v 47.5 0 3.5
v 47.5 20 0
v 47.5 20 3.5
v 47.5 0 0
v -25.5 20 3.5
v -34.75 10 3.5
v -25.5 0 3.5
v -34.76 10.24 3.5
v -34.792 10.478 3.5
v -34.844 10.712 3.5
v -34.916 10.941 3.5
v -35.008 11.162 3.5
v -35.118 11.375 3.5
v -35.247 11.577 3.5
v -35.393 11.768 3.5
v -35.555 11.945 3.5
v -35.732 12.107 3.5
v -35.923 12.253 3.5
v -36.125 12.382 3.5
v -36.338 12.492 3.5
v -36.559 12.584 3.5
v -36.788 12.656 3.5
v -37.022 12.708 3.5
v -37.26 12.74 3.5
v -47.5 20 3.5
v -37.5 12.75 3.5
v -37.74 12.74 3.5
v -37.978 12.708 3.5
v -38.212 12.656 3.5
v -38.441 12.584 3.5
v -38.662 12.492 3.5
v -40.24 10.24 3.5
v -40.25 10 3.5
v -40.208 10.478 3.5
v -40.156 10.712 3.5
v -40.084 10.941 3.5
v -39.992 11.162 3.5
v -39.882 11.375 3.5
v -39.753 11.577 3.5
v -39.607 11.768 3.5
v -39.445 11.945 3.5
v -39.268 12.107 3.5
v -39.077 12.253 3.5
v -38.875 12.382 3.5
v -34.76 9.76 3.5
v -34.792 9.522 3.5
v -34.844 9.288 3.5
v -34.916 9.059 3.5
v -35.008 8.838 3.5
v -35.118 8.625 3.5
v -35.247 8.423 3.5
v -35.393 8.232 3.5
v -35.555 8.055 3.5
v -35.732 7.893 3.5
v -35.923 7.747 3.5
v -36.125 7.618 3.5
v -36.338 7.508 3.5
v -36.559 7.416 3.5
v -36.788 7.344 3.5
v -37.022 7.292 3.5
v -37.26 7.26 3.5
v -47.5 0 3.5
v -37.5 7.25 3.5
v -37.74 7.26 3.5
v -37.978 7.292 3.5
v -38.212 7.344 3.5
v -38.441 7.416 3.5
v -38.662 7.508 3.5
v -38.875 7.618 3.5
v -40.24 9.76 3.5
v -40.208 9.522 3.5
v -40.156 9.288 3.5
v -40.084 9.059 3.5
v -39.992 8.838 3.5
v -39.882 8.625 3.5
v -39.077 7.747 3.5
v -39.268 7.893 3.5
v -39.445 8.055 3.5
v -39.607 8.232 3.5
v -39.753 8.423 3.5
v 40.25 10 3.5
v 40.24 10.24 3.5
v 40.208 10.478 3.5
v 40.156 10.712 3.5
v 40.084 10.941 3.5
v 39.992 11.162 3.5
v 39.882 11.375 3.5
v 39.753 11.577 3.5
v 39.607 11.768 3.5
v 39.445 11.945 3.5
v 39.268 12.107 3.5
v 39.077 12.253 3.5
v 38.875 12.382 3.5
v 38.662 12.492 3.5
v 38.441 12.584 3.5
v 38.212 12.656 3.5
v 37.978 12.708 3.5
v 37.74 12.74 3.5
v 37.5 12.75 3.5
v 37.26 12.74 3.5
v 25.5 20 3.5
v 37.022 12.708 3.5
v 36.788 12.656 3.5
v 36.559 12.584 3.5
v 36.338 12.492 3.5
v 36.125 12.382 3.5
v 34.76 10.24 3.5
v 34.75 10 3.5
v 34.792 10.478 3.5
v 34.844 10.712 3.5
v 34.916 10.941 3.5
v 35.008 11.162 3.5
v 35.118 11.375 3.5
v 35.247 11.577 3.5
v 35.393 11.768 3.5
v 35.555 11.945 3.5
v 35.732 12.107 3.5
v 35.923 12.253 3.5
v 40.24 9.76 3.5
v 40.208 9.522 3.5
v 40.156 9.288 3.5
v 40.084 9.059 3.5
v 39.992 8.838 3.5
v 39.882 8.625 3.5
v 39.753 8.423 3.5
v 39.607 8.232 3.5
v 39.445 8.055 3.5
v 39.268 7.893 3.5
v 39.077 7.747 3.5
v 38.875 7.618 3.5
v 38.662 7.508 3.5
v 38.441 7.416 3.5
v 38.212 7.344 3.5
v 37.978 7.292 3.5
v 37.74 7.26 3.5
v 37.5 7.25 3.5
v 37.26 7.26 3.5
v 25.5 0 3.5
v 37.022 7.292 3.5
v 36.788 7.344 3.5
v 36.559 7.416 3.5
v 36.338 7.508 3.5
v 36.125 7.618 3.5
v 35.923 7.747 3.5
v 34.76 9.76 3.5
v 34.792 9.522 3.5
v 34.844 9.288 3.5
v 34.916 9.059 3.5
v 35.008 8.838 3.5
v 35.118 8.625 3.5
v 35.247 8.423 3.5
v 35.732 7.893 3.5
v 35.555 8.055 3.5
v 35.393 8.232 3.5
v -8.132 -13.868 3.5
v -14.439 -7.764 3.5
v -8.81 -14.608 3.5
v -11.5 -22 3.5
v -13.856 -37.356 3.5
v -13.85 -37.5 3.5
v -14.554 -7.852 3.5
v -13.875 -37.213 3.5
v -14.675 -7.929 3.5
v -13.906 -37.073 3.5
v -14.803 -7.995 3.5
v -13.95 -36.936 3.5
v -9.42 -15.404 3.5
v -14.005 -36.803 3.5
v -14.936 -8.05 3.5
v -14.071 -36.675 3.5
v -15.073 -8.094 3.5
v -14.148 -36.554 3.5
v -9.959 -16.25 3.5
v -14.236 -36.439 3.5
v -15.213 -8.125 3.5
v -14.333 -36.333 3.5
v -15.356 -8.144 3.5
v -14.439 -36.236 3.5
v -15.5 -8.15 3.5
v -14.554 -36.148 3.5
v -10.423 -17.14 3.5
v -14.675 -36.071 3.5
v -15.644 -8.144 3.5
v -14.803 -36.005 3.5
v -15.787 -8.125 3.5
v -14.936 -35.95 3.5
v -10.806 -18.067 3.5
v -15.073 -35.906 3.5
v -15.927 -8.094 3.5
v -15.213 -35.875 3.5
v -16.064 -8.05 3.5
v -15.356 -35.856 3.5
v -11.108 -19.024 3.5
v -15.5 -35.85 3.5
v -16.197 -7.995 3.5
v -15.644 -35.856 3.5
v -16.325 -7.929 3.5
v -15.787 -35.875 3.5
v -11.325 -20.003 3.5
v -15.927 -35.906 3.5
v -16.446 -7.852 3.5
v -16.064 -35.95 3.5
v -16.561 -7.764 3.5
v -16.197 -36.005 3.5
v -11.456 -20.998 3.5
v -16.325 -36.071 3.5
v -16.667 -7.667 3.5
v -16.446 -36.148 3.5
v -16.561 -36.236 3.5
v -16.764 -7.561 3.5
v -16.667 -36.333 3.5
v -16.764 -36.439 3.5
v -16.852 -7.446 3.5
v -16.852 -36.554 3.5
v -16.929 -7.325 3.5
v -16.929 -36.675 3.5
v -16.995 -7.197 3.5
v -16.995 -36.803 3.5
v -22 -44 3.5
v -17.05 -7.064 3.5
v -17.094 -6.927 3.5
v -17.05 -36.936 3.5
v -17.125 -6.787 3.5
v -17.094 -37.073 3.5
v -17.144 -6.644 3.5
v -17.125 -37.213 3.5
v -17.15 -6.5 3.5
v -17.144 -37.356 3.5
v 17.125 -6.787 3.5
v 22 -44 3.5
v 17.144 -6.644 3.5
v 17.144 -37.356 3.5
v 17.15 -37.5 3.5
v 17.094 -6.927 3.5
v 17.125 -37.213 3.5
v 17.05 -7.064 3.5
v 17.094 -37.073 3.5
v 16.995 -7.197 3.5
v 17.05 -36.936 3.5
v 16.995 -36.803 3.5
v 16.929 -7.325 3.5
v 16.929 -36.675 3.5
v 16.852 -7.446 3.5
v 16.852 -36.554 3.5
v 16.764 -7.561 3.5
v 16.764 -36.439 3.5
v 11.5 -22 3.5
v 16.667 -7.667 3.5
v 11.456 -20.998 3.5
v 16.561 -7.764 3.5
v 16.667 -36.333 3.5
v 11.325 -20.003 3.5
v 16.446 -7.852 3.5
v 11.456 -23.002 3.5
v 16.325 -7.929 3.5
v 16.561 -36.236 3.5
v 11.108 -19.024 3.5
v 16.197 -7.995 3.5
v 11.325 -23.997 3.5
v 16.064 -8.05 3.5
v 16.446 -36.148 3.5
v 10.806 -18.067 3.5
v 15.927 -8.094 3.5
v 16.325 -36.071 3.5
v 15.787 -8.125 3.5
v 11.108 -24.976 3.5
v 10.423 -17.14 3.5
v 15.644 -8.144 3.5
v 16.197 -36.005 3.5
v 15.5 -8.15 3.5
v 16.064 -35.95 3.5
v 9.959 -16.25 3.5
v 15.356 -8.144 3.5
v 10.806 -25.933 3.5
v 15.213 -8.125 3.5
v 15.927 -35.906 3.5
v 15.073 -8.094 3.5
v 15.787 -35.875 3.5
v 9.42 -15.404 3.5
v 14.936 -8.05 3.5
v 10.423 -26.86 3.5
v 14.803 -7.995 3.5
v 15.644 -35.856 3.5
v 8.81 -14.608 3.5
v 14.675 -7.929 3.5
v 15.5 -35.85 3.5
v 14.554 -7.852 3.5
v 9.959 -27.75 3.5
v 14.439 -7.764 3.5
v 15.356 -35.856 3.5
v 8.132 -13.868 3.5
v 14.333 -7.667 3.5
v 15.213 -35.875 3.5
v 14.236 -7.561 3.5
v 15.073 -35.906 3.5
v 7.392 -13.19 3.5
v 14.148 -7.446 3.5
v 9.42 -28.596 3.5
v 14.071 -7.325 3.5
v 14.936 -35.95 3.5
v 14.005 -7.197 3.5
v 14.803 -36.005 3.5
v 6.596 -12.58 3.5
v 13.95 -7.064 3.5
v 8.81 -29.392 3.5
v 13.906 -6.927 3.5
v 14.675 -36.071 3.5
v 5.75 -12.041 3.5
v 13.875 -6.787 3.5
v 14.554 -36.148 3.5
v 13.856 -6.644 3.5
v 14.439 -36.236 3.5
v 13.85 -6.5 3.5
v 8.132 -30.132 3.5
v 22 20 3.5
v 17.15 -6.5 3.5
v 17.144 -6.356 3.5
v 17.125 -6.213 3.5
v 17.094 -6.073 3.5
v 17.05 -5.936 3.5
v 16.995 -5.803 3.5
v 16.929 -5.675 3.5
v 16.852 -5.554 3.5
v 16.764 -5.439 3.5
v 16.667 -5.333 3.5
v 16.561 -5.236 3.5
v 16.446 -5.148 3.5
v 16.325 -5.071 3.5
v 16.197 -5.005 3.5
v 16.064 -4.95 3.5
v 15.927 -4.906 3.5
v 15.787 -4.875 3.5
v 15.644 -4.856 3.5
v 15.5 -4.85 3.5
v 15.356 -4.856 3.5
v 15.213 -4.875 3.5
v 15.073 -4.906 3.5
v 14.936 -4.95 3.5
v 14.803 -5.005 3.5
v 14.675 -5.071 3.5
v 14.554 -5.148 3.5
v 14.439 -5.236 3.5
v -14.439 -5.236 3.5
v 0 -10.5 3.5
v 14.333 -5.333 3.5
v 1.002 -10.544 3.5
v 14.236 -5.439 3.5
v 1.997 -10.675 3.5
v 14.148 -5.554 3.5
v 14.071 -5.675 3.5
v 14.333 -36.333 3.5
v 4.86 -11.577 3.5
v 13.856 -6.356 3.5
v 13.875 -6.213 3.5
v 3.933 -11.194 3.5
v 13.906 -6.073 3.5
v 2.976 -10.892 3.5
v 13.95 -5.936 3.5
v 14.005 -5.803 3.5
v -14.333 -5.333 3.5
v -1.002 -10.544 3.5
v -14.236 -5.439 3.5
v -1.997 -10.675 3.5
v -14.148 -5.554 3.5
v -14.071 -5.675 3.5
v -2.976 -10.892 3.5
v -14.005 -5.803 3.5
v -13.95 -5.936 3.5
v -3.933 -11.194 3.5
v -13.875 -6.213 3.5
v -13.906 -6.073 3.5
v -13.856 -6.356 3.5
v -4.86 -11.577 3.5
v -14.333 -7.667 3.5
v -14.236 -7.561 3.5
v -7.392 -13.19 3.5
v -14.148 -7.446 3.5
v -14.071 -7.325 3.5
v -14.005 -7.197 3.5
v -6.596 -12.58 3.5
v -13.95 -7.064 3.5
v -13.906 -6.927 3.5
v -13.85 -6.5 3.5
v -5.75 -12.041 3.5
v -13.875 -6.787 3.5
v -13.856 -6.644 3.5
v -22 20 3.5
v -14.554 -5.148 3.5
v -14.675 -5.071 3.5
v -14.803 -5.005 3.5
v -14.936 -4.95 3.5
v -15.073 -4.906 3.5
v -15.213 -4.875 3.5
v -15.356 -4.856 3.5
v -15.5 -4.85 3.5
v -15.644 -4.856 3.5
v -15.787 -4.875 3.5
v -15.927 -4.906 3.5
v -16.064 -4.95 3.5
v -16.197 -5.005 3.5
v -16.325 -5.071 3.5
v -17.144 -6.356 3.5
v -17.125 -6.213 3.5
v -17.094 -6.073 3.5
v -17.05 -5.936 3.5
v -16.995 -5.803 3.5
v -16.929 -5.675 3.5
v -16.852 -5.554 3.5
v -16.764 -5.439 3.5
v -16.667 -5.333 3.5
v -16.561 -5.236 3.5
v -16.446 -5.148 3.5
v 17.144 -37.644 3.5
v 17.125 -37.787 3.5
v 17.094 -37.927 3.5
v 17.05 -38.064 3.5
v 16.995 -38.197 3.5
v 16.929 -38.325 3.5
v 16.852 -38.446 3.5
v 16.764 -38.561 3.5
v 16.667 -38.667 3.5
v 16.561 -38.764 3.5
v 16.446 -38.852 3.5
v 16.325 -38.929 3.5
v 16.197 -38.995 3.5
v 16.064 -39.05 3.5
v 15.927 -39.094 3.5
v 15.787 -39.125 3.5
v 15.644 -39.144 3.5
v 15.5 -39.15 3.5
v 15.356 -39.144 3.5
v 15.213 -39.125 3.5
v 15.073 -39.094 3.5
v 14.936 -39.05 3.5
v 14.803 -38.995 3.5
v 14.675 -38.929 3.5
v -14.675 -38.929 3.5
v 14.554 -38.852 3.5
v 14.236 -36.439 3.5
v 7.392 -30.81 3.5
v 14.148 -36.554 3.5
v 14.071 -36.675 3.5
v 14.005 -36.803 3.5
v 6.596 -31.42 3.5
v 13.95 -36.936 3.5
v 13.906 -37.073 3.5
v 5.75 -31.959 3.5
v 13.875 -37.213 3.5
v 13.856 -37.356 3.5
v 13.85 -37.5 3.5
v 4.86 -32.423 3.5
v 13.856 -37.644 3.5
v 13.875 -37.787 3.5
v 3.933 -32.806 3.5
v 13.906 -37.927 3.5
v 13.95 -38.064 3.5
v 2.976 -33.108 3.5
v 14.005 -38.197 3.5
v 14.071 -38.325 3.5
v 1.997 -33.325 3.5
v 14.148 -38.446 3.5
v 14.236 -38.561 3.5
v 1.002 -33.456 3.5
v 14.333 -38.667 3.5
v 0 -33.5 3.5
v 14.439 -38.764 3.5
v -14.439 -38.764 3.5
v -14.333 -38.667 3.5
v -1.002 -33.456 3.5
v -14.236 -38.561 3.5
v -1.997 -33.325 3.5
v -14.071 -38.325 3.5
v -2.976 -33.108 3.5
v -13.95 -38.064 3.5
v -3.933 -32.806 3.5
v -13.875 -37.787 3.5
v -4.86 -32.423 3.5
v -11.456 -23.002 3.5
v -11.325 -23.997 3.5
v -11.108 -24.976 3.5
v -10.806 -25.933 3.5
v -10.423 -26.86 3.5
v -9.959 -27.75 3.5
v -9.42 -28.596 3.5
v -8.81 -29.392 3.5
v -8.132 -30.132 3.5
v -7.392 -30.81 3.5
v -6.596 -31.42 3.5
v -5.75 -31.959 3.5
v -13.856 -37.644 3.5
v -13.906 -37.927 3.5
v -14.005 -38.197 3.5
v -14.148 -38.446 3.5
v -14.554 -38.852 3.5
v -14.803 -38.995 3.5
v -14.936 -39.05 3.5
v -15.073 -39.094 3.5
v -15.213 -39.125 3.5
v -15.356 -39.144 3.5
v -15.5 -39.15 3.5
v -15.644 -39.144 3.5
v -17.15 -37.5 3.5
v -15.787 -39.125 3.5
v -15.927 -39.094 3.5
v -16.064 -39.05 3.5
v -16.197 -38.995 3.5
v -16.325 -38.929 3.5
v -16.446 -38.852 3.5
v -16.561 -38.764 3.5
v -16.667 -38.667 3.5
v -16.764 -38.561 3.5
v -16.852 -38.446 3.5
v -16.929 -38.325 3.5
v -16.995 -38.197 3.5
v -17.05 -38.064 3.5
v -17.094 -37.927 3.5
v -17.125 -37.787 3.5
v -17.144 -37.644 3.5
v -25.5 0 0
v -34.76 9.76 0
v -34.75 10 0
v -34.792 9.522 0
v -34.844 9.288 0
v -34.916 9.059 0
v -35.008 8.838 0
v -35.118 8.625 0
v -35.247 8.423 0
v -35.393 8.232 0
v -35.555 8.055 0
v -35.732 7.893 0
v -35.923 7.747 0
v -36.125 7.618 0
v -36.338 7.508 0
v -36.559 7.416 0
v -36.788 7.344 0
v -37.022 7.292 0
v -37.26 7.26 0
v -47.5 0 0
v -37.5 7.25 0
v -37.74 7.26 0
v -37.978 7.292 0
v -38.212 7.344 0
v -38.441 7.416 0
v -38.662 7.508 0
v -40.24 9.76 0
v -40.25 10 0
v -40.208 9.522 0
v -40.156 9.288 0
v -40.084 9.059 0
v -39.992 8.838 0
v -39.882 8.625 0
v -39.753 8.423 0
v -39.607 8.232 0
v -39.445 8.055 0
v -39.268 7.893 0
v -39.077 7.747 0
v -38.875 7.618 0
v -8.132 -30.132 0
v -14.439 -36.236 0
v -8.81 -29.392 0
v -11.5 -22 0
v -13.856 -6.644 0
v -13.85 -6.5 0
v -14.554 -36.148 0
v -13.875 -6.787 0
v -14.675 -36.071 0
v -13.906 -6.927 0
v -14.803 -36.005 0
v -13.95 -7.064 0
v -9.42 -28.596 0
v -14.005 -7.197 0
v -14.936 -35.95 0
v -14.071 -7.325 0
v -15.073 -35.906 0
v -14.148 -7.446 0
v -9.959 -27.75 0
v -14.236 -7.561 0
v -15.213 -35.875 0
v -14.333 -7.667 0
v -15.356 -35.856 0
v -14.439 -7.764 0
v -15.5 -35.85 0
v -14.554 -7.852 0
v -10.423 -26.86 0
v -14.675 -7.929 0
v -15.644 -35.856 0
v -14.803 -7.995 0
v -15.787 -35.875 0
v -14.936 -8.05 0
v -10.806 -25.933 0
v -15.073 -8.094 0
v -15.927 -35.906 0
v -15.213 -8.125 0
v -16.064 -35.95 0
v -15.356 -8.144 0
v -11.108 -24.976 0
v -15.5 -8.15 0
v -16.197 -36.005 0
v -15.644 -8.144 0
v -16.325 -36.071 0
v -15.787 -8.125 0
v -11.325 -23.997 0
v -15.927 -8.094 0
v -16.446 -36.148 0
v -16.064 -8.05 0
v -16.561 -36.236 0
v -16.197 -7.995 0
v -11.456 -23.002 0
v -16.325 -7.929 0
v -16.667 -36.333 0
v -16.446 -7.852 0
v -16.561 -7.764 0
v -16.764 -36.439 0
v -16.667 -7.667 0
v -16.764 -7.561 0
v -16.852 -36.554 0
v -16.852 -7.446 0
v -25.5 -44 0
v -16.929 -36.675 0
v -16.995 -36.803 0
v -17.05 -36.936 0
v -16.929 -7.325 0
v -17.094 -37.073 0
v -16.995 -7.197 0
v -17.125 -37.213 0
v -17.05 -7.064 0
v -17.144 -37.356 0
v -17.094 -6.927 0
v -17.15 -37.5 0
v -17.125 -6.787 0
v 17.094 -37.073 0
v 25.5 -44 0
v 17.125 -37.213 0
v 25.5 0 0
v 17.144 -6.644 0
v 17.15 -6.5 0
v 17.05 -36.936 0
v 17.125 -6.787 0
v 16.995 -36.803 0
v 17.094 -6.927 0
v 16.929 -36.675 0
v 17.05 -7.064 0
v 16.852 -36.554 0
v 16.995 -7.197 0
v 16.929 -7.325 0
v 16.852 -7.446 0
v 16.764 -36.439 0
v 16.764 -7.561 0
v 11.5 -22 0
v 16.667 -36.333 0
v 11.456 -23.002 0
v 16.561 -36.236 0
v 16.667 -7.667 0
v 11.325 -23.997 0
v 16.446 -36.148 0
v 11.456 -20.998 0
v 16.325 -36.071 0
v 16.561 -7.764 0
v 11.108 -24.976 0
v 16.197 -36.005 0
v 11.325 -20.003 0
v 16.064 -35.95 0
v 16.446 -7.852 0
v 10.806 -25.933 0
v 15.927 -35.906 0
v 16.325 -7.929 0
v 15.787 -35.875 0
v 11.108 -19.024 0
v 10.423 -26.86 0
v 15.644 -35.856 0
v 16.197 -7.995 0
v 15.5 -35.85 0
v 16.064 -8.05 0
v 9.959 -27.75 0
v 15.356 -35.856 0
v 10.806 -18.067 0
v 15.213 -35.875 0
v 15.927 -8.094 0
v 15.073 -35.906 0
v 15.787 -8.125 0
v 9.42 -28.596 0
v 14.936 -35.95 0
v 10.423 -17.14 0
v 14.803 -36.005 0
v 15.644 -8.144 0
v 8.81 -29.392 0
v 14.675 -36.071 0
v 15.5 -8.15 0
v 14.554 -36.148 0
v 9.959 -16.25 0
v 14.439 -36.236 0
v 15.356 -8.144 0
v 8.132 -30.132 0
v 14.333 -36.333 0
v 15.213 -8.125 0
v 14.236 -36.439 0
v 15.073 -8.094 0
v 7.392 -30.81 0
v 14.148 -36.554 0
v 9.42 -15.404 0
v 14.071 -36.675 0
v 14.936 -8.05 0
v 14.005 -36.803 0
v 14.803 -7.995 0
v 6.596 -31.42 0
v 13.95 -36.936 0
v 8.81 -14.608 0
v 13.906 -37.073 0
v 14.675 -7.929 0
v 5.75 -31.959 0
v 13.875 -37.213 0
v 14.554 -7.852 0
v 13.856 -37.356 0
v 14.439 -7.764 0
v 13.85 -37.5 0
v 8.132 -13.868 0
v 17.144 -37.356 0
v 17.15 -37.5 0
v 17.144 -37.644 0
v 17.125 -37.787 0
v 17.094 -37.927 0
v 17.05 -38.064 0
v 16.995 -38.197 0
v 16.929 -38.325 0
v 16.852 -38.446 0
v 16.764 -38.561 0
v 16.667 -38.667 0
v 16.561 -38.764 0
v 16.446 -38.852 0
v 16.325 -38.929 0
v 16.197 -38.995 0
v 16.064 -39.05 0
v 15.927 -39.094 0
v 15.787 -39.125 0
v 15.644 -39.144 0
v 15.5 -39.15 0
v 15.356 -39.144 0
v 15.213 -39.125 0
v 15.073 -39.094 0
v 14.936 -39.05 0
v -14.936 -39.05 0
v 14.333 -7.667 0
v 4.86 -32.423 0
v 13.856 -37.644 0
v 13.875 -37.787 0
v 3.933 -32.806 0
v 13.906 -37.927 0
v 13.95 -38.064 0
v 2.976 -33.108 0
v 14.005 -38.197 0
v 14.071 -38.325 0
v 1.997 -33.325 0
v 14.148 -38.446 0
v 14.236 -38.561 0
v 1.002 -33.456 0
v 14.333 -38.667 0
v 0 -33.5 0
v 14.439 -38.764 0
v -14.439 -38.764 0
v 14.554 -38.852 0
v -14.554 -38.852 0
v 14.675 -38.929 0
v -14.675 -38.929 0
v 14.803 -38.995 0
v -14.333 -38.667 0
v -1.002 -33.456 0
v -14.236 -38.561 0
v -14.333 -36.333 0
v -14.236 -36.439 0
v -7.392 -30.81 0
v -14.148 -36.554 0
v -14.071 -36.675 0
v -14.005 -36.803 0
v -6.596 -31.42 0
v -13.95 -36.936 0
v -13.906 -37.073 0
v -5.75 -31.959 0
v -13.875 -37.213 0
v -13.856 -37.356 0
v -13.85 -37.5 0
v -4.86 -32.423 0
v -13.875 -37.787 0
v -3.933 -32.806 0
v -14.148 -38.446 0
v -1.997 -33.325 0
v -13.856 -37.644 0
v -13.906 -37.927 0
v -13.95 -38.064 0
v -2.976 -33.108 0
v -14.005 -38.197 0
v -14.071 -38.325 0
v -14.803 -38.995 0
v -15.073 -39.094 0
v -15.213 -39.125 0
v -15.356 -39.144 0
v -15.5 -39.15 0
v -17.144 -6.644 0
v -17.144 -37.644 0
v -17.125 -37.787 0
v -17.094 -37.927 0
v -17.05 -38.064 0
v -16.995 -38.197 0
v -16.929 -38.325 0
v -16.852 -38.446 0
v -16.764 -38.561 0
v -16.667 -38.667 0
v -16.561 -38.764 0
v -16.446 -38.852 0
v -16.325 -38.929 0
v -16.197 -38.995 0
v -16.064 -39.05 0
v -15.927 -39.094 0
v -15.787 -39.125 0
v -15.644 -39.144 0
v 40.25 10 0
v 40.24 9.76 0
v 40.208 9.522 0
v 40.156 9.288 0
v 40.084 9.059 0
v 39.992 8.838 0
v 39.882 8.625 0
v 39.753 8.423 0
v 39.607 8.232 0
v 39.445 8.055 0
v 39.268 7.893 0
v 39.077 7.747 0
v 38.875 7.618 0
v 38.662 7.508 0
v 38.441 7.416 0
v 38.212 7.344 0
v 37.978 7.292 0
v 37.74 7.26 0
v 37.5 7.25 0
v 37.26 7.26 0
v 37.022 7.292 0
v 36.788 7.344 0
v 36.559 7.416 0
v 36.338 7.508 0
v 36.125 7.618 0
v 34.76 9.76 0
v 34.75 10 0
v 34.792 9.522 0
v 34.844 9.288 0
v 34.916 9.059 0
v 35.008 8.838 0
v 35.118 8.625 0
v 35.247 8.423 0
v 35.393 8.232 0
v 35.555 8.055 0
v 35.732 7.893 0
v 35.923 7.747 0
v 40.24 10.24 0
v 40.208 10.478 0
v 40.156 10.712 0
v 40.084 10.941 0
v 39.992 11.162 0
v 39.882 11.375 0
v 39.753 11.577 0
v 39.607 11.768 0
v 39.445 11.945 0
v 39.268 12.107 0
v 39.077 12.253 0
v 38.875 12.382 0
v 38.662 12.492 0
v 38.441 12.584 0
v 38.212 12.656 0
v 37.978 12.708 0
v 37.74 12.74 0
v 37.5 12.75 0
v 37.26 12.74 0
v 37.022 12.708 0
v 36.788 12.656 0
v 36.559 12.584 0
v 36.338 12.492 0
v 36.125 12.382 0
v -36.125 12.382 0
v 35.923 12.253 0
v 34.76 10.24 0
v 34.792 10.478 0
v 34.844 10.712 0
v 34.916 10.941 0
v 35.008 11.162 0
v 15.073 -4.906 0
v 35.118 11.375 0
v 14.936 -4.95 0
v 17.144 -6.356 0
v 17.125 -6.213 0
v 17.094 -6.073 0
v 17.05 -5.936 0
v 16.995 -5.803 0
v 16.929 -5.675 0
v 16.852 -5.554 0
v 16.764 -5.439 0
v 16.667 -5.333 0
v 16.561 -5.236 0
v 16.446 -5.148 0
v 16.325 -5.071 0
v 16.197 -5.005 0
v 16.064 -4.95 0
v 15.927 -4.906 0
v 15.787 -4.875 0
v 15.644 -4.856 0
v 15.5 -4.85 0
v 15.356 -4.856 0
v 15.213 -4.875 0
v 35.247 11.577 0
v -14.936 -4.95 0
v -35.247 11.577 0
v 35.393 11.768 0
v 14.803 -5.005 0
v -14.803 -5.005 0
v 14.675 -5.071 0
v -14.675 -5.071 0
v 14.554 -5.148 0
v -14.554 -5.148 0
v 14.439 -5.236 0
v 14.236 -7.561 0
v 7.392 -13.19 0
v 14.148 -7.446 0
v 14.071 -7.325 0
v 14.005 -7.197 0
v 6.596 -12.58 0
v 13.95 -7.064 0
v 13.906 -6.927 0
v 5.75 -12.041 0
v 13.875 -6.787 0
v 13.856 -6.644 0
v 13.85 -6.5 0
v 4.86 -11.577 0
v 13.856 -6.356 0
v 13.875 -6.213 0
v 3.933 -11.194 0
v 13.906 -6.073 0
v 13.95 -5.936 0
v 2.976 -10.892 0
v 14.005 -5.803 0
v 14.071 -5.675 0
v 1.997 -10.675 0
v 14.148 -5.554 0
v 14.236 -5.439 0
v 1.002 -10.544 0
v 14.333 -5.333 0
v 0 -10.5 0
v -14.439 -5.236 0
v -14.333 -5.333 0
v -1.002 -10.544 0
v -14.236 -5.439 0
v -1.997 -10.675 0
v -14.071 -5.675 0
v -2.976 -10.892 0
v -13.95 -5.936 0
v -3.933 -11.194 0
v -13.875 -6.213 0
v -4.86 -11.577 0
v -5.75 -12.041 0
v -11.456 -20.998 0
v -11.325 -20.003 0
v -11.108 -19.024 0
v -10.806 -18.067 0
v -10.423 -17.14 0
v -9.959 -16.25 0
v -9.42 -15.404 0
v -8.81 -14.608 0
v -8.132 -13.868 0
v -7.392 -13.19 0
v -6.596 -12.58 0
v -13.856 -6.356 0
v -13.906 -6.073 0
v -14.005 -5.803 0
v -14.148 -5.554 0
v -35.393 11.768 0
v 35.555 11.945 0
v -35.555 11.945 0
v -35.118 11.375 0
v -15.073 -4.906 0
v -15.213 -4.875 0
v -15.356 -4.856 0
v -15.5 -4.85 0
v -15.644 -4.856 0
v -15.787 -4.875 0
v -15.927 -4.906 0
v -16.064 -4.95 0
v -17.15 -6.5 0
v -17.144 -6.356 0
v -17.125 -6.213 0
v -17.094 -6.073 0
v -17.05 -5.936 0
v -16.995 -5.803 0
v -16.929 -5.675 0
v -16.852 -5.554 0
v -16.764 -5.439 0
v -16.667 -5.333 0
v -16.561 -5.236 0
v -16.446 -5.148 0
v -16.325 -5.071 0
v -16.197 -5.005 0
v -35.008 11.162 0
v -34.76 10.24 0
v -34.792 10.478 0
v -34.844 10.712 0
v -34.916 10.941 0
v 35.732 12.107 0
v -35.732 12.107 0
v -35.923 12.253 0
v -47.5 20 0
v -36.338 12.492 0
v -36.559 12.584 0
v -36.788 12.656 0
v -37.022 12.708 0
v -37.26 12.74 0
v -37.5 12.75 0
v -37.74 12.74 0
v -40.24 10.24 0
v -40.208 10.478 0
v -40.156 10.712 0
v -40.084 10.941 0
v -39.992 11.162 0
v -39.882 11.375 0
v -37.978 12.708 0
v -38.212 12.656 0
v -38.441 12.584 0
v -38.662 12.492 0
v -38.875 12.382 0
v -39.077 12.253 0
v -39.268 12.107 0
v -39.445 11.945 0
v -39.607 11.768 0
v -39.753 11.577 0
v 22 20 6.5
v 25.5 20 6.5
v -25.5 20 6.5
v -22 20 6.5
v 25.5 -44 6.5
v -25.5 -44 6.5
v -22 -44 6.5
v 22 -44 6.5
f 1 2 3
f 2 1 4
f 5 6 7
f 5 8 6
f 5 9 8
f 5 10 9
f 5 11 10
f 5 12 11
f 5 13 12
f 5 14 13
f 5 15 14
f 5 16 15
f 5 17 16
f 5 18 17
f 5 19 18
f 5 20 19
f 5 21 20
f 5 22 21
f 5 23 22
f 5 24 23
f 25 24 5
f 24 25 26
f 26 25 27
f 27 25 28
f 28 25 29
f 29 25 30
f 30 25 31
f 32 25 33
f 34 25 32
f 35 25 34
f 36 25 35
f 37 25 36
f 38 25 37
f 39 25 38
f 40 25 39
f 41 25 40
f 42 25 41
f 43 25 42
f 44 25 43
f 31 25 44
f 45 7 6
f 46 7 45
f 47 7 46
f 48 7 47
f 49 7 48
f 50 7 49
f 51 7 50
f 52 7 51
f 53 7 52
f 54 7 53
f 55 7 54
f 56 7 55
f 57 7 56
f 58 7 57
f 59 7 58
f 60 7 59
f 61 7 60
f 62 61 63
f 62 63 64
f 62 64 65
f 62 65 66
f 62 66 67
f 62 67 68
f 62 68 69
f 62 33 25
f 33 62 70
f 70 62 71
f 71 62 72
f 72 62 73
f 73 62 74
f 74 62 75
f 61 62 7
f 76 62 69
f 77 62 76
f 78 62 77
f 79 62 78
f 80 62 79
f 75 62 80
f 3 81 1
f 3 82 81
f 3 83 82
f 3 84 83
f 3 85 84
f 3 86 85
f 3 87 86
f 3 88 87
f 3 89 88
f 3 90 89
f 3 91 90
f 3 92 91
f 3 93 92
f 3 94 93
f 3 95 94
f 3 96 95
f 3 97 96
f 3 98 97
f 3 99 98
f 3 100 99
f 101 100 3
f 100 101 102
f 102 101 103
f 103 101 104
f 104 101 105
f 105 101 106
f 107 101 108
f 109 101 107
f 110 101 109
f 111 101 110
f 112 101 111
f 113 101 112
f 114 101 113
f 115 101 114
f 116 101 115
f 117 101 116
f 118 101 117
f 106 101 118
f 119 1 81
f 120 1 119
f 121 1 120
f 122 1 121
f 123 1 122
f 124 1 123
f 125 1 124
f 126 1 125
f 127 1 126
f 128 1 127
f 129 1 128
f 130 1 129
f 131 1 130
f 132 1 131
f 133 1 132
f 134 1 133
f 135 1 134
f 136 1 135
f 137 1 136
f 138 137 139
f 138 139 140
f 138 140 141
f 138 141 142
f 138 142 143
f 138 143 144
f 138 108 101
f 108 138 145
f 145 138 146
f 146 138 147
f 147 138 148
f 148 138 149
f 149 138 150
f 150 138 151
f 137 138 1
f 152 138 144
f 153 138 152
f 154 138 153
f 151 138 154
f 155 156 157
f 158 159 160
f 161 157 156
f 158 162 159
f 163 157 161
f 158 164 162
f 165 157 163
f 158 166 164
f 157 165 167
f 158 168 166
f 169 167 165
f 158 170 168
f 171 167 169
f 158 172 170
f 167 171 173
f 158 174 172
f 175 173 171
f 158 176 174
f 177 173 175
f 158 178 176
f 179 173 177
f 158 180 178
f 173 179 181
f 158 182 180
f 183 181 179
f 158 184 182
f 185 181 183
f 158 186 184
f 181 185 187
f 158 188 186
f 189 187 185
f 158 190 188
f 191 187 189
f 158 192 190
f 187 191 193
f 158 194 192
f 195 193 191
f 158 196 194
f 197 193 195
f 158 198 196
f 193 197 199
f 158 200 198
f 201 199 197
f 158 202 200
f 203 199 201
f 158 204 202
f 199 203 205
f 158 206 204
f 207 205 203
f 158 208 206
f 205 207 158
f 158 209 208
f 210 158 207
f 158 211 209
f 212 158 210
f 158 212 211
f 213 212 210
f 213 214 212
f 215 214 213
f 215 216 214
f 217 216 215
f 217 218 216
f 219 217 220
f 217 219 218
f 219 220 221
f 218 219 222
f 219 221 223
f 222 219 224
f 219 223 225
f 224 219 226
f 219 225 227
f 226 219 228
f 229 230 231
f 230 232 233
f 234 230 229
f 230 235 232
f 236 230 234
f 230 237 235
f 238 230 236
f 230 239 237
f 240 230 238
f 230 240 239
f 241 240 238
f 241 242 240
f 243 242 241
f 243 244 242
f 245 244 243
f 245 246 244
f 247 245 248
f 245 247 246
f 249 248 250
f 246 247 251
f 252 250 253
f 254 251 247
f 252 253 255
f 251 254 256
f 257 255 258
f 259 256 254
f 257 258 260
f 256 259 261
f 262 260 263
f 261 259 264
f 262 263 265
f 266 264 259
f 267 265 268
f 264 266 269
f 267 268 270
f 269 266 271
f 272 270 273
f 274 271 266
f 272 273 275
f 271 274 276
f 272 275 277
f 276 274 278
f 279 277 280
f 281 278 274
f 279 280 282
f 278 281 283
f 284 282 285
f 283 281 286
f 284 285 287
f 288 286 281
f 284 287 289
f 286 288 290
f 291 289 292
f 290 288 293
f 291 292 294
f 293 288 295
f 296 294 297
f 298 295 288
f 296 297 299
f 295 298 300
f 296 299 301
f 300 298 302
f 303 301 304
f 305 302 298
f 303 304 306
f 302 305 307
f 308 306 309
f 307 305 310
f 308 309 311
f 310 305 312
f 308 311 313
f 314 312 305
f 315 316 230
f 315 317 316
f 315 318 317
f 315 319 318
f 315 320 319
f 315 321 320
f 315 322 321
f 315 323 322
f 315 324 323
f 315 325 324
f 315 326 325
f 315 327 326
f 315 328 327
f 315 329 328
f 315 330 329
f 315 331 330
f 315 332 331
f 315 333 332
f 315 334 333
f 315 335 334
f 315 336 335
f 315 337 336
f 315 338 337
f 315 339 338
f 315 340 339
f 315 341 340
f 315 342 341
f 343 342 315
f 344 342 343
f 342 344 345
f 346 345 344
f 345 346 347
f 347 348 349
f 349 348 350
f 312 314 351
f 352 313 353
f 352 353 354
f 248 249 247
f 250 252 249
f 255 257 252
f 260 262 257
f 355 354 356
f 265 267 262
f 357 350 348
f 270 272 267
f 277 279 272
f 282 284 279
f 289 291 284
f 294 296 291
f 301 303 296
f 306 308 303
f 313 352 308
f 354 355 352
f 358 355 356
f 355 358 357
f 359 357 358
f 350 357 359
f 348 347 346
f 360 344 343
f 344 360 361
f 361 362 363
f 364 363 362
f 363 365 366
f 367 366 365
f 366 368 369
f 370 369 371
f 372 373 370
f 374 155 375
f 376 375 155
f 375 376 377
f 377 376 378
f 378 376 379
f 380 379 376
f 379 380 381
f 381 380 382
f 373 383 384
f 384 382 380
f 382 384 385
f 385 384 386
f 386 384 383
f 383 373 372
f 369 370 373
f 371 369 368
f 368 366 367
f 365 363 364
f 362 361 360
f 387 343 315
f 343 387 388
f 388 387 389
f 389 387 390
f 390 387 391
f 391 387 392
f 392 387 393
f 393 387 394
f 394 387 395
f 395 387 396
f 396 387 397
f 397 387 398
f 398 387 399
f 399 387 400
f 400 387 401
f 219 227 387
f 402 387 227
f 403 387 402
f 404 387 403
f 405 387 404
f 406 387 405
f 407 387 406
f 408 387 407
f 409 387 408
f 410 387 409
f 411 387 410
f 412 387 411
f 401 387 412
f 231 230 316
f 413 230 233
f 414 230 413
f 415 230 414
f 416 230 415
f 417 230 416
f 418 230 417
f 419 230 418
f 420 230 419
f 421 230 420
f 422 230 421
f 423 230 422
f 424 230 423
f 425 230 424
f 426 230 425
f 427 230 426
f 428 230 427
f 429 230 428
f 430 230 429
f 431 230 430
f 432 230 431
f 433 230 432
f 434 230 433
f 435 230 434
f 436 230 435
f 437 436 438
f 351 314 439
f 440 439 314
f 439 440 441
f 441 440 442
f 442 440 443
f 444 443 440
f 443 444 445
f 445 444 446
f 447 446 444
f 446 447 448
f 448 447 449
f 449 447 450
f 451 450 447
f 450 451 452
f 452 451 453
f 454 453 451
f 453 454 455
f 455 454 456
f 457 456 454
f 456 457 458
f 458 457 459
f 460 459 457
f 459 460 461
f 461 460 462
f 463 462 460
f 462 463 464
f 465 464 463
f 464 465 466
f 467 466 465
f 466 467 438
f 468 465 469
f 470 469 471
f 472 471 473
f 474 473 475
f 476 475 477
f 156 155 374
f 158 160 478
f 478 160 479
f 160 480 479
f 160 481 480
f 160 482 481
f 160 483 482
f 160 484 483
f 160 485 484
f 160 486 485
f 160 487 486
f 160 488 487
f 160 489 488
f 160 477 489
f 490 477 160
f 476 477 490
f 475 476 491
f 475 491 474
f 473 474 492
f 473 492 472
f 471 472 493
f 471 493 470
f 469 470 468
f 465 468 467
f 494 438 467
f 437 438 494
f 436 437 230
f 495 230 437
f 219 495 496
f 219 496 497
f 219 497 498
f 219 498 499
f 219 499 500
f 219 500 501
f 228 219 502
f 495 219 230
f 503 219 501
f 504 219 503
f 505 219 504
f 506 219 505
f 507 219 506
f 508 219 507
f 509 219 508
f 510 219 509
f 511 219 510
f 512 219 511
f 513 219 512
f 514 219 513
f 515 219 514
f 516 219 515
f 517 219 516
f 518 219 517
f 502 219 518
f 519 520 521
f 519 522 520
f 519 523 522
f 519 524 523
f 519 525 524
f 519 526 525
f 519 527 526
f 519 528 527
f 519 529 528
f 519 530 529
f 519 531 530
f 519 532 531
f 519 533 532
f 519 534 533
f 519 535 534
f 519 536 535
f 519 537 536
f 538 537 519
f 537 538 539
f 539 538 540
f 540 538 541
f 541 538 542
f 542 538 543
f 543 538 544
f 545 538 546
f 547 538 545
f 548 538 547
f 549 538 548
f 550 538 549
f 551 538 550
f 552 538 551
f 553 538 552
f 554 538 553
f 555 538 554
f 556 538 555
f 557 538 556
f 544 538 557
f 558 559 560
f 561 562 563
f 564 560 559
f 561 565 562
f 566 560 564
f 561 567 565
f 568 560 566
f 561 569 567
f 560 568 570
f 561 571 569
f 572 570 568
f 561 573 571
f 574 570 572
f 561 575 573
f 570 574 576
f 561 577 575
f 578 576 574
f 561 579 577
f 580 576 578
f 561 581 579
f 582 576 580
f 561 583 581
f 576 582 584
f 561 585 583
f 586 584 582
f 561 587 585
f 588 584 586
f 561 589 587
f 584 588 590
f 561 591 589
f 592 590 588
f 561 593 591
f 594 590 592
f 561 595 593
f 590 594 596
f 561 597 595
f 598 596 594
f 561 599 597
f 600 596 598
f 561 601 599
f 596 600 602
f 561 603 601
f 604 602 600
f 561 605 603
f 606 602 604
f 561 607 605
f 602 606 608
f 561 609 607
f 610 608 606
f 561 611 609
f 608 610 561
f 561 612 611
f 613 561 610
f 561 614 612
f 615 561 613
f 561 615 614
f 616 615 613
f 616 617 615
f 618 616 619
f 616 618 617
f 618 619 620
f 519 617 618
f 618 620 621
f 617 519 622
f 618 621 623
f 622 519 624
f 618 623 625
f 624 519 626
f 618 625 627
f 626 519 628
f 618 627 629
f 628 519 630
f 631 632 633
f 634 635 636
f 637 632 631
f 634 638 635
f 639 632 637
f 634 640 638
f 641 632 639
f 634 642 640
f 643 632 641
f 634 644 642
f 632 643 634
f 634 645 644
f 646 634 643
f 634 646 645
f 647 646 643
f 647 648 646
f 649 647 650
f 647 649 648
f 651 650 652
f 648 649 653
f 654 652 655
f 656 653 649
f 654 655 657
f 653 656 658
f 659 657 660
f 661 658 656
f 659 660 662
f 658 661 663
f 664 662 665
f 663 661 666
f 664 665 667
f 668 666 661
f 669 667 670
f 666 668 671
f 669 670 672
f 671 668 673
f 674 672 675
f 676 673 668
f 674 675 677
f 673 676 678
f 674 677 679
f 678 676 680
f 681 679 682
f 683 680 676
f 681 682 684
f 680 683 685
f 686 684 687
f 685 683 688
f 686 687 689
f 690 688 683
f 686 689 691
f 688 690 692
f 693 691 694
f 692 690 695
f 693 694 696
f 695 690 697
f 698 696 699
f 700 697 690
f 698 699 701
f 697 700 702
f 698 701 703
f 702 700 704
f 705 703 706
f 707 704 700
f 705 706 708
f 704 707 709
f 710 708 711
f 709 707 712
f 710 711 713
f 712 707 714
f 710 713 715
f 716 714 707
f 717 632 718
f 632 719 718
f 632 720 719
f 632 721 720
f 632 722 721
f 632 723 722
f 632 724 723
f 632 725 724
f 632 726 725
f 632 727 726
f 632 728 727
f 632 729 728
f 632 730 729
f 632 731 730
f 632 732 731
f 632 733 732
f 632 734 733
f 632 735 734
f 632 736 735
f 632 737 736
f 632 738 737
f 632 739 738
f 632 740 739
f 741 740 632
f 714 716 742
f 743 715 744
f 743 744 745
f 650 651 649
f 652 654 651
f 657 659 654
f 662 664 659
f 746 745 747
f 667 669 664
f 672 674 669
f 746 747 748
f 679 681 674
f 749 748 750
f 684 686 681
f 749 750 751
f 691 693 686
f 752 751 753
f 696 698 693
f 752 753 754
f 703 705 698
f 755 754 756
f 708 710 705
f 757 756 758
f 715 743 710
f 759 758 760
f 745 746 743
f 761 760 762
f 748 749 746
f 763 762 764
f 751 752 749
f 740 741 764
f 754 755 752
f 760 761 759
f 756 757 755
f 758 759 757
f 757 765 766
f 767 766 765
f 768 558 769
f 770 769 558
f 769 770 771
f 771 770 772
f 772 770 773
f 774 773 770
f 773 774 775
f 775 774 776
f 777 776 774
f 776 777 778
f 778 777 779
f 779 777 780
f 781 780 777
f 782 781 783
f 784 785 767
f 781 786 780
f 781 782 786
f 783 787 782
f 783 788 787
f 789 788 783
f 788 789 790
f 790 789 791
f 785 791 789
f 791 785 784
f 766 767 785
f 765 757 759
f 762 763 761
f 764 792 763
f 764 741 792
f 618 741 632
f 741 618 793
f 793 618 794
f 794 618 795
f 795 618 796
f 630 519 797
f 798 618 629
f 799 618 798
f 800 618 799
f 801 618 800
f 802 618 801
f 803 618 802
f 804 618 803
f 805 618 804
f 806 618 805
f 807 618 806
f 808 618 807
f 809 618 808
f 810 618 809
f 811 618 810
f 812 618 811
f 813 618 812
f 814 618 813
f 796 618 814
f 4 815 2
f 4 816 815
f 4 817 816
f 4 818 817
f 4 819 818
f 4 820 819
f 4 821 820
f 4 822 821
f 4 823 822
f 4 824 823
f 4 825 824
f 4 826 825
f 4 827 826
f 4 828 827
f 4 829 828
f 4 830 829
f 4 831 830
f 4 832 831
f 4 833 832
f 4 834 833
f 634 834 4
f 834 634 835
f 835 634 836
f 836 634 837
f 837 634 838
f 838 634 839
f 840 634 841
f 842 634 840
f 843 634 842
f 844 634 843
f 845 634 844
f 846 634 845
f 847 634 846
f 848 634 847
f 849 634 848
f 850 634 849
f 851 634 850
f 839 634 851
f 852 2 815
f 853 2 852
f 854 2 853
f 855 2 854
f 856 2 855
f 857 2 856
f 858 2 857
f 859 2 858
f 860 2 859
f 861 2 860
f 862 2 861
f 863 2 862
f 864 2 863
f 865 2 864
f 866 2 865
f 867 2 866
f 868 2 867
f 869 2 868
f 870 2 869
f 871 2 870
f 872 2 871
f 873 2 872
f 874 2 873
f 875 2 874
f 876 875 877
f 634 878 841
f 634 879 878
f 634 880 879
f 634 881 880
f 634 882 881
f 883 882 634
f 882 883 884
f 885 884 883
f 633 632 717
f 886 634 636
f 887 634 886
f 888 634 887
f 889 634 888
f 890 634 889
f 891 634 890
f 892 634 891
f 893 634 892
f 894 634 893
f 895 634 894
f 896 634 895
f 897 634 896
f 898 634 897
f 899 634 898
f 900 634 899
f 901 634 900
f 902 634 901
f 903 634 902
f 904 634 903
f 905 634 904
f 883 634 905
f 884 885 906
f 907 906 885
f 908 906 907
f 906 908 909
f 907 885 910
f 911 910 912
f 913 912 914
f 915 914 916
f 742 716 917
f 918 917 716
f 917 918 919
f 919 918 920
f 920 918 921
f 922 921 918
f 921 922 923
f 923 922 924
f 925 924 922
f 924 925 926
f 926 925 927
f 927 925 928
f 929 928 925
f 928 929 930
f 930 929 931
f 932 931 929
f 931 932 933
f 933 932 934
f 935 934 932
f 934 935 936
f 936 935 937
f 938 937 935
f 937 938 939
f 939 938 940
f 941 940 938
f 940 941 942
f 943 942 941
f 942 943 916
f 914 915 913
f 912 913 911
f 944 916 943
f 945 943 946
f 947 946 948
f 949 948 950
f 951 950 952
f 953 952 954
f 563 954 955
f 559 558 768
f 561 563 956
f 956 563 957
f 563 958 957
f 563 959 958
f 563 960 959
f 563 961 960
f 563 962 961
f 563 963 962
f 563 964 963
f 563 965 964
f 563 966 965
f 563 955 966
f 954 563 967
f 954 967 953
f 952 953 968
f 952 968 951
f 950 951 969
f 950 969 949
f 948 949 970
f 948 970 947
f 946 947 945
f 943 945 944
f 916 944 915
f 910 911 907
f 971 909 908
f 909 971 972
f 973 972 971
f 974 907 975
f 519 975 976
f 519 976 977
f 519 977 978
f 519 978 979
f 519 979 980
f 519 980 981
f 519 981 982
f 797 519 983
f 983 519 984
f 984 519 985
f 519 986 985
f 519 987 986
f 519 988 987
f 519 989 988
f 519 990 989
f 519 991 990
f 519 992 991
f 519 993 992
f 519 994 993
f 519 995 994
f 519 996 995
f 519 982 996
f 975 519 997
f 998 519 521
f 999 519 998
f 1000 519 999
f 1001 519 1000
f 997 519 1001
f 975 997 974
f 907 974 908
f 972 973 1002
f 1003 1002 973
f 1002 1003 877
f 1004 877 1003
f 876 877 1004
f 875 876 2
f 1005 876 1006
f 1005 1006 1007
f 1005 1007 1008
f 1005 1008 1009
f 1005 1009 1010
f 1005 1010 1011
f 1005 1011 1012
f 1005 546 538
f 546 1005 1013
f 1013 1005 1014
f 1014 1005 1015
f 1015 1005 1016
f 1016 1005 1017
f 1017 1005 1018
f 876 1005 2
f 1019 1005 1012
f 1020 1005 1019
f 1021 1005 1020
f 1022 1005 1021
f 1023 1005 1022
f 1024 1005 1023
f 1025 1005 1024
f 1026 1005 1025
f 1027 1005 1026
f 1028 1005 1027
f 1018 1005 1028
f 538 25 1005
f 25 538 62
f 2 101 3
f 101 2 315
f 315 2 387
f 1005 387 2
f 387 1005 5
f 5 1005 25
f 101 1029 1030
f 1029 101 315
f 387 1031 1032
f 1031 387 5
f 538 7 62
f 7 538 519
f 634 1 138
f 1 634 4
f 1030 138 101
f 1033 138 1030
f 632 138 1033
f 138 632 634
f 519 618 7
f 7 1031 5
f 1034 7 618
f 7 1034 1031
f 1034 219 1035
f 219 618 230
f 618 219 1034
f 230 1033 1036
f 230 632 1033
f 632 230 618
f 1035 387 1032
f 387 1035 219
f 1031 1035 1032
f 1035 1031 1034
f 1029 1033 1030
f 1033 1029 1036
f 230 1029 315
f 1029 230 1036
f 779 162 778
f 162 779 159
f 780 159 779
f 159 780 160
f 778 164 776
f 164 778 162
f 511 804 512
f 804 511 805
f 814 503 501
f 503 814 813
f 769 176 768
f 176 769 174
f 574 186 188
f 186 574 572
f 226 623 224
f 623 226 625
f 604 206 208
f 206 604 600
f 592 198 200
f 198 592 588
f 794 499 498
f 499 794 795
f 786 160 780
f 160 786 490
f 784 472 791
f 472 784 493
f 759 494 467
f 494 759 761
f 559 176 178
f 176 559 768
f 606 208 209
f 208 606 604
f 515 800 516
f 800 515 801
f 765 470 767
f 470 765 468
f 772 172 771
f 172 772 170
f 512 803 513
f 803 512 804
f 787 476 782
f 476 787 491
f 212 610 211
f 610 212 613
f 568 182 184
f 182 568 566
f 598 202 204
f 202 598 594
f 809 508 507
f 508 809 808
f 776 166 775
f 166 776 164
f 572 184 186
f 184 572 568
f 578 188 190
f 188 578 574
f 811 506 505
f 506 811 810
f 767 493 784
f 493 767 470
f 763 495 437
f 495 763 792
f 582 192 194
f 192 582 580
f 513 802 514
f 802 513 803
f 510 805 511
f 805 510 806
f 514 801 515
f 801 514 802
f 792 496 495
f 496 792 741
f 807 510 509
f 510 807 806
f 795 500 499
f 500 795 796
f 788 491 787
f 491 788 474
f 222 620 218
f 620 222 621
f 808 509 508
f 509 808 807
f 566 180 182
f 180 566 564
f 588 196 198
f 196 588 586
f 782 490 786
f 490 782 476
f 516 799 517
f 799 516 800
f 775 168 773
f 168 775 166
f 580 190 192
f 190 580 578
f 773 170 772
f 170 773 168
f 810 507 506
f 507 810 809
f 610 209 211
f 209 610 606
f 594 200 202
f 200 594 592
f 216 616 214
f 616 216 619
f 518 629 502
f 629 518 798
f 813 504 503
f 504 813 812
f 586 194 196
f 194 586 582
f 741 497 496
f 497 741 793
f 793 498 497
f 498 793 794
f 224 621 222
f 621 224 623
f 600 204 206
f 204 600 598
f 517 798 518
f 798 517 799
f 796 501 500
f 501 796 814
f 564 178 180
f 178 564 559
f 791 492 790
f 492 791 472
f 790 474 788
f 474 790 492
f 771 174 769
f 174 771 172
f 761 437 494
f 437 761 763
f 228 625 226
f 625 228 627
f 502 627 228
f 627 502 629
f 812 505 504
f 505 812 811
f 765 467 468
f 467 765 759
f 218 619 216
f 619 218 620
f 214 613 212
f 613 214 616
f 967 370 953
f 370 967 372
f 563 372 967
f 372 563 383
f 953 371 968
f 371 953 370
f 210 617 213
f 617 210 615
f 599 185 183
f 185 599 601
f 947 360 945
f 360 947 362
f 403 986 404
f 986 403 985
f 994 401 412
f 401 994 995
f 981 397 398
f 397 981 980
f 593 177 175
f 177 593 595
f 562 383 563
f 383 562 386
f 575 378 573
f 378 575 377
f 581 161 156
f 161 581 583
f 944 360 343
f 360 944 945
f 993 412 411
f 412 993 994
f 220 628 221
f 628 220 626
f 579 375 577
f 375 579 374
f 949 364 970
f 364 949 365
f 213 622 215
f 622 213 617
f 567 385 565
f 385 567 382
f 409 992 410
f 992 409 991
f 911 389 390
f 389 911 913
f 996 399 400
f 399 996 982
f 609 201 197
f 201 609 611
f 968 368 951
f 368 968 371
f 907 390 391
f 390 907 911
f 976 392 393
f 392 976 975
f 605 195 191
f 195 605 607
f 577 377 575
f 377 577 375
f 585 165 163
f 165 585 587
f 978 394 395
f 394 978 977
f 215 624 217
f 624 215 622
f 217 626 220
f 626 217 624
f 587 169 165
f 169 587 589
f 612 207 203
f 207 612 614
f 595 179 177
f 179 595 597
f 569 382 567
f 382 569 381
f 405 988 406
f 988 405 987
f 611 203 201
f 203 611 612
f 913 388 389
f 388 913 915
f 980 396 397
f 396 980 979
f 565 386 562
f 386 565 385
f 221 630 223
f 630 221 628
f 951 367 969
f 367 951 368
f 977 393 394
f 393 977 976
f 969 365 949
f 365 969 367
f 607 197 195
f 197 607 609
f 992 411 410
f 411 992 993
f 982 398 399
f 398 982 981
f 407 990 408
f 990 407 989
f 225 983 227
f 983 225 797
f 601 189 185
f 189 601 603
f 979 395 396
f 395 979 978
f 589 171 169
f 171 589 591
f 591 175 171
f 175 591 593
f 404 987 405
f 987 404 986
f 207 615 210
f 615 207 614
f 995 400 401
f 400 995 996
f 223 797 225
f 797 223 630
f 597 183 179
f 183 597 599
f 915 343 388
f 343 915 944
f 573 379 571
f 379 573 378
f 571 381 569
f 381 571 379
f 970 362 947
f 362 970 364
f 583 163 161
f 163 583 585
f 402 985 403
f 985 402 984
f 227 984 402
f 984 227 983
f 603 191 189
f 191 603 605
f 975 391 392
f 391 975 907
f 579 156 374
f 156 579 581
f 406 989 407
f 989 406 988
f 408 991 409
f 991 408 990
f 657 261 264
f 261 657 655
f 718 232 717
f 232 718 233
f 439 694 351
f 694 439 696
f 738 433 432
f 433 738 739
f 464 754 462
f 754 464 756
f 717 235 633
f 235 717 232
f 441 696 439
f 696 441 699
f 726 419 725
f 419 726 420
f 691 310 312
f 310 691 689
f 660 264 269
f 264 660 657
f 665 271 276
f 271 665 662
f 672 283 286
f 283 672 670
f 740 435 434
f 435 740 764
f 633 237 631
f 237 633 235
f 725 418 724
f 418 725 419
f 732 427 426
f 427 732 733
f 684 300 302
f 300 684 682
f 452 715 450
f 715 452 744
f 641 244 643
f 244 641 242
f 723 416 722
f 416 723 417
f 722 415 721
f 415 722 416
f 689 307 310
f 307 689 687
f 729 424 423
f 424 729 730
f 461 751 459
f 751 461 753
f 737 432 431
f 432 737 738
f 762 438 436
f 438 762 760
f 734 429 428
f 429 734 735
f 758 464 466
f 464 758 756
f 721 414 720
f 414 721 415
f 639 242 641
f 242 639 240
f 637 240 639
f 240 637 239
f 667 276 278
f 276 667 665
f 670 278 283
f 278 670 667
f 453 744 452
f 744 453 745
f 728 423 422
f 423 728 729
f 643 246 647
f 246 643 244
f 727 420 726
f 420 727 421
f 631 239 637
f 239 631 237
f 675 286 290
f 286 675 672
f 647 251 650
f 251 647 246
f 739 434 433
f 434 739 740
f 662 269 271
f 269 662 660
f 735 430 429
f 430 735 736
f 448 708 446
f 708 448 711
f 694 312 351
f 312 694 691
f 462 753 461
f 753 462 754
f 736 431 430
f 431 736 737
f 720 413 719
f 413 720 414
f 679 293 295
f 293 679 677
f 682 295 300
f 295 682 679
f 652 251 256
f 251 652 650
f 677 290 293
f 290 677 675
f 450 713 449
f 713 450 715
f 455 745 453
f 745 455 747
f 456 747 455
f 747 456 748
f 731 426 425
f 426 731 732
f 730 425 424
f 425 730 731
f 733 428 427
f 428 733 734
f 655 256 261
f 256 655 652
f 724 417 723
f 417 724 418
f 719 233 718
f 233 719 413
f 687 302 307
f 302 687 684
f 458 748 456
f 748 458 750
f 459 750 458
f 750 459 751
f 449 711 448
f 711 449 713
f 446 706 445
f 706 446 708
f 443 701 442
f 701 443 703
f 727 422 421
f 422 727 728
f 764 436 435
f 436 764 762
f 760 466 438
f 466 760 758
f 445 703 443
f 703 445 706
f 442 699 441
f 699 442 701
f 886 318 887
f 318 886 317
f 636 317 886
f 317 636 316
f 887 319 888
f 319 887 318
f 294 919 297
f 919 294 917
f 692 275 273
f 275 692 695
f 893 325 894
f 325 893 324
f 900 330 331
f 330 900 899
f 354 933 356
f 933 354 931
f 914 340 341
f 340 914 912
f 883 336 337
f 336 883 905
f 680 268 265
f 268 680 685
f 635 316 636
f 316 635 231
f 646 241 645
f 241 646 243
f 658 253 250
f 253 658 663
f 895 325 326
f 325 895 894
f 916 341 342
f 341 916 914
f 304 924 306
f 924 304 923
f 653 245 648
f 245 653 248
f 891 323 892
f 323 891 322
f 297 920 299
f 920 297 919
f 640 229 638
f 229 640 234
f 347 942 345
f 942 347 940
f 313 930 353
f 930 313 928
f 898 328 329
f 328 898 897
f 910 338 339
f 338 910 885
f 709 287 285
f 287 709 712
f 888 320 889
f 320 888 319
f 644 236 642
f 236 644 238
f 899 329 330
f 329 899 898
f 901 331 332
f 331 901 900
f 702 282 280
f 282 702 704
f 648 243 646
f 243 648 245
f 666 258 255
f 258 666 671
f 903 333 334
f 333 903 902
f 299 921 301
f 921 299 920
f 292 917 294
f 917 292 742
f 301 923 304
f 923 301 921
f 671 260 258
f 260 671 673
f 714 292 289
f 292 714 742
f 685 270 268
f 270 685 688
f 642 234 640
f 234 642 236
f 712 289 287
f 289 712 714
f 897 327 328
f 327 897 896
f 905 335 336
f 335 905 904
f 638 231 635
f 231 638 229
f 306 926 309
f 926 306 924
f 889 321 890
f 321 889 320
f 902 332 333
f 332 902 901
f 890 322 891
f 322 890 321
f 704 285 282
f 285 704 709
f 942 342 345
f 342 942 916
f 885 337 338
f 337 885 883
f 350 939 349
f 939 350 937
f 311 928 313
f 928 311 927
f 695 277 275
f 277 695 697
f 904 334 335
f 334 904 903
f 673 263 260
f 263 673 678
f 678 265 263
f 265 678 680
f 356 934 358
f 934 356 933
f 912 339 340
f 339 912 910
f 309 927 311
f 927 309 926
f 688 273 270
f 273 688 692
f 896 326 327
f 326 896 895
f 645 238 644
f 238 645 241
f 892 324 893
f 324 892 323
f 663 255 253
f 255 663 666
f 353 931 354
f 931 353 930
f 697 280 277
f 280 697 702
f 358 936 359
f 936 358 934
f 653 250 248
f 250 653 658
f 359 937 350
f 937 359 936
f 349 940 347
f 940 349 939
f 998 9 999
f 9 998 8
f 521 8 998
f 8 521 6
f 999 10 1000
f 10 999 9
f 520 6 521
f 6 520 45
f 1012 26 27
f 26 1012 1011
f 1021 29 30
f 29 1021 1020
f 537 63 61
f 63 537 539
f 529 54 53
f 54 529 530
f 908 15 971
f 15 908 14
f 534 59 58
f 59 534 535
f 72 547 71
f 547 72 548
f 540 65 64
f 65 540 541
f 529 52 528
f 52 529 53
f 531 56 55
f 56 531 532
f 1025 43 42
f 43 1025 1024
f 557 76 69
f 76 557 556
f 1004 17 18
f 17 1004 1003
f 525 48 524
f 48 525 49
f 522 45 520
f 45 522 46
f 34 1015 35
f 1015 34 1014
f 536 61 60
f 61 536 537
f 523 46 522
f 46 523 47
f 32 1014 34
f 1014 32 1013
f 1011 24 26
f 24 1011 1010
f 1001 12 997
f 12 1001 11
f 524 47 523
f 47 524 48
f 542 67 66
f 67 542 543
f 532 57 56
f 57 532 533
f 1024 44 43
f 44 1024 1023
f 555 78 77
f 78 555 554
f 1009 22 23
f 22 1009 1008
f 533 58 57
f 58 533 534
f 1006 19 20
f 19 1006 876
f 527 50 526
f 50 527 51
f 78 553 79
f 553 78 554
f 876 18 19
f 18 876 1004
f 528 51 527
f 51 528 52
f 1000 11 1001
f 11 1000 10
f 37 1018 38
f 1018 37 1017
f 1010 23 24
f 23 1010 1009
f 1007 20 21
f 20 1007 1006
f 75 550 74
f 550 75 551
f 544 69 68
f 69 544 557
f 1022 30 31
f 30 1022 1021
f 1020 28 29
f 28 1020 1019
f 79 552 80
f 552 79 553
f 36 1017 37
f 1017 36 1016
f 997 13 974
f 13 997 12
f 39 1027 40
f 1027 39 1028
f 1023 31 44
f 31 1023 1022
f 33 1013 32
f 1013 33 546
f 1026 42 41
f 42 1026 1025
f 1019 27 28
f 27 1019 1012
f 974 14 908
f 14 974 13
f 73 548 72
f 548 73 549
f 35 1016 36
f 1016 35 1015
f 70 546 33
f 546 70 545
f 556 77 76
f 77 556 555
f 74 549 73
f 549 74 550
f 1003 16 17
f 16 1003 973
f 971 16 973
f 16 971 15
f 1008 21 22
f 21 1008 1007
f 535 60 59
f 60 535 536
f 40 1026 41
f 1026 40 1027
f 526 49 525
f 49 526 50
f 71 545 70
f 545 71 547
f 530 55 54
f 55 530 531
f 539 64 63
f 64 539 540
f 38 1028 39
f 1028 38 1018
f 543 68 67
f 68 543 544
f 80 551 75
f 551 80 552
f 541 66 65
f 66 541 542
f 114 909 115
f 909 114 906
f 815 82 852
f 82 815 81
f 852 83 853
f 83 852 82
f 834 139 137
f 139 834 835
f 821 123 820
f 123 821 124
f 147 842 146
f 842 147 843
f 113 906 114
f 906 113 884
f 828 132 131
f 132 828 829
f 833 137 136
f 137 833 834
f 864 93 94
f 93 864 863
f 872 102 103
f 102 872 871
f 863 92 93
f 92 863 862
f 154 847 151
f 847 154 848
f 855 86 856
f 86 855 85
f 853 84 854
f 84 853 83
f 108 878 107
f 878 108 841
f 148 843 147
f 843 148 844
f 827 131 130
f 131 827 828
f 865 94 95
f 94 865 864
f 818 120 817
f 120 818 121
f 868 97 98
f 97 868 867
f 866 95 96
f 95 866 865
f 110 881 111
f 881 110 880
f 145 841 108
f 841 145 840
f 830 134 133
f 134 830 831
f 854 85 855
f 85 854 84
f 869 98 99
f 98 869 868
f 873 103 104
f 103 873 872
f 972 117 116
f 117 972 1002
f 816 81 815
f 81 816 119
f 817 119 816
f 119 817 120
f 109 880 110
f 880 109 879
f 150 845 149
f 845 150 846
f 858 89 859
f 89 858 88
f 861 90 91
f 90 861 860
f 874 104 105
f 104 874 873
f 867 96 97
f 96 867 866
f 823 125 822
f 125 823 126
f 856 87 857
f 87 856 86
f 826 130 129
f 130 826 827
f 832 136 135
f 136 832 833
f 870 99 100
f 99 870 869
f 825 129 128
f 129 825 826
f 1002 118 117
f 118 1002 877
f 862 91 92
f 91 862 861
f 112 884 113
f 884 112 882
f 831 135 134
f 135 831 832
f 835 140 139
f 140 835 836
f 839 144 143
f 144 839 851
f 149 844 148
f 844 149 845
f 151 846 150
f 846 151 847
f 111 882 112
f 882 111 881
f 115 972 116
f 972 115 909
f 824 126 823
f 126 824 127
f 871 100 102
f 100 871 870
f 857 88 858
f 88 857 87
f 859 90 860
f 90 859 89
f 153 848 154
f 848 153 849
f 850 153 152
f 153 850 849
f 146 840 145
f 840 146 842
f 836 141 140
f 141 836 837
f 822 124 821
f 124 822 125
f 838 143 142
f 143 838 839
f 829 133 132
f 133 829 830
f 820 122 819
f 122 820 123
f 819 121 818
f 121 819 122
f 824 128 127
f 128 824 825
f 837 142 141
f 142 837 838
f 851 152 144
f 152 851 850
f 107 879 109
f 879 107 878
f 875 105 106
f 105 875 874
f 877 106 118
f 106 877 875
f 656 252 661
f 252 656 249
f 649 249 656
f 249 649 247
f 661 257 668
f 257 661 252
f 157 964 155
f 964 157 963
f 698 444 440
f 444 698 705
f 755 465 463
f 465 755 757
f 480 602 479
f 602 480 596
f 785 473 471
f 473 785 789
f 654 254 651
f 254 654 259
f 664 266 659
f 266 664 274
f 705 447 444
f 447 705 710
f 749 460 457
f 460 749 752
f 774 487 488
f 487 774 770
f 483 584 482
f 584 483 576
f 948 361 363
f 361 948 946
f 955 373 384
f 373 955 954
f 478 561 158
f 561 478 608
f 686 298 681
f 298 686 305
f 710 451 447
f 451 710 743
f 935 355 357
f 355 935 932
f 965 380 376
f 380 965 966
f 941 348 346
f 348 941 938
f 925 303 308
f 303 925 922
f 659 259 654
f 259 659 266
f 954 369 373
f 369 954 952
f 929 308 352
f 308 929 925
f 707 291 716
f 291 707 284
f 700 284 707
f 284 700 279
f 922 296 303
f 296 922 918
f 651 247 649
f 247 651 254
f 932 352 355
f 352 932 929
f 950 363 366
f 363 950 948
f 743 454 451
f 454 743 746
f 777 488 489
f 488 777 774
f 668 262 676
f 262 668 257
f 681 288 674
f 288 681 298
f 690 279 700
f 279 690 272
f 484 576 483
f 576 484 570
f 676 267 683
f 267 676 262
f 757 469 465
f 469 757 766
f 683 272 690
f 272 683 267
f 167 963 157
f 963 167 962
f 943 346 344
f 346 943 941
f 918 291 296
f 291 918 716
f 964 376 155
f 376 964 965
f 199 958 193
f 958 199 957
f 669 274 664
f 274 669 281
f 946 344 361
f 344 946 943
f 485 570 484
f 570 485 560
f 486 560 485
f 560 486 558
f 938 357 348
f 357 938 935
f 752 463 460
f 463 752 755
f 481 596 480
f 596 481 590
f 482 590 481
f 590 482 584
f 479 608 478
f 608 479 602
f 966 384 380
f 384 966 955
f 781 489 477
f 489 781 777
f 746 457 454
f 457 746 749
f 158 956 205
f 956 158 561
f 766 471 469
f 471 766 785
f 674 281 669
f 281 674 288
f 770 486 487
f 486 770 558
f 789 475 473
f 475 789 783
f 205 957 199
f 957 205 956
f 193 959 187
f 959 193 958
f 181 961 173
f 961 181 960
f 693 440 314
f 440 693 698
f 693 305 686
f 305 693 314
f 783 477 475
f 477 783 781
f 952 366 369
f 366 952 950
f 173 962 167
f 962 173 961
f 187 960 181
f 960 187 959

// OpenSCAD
$fn=72;
nema17_hole_spacing = 31;
nema17_width = 44; //42.3 + some margin
nema17_hole_size = 3.3; //Through hole for M3
nema17_center_hole = 23; //22 + some margin

stepper_offset = 2;

rail_width = 20; //2020 rails
rail_hole_spacing = 75;
rail_hole_size = 5.5; //Through hole for M3


thickness = 3.5;

wall_height = 3;
wall_thickness = thickness;


difference() {
    union() {
     
        //Upper bracket part
        rail_bracket_width = rail_hole_spacing + rail_width;
        translate([-rail_bracket_width/2, 0, 0])
            cube([rail_bracket_width, rail_width, thickness]);
        
        
        //Stepper motor bracket part
        translate([-nema17_width/2-wall_thickness, -nema17_width, 0])
            cube([nema17_width+2*wall_thickness, nema17_width+1, thickness]);
        
        //Side walls
        translate([-nema17_width/2-wall_thickness, -nema17_width, 0])
            cube([wall_thickness, nema17_width+rail_width, thickness+wall_height]);

        translate([nema17_width/2, -nema17_width, 0])
            cube([wall_thickness, nema17_width+rail_width, thickness+wall_height]);

    }
    
    
    union() {
        //Bracket holes
        for (i=[-1,1])
            translate([i*rail_hole_spacing/2, rail_width/2, -0.1])
                cylinder(d=rail_hole_size, h=thickness+0.2);
        
        //Stepper motor mounting holes
        for (i=[-1,1])
            for(j=[-1,1])
                translate([i*nema17_hole_spacing/2, -nema17_width/2+j*nema17_hole_spacing/2, -0.1])
                    cylinder(d=nema17_hole_size, h=thickness+0.2);
            
        //Center hole
        translate([0, -nema17_width/2, -0.1]) cylinder(d=nema17_center_hole, h=thickness+0.2);
        
    }
}
